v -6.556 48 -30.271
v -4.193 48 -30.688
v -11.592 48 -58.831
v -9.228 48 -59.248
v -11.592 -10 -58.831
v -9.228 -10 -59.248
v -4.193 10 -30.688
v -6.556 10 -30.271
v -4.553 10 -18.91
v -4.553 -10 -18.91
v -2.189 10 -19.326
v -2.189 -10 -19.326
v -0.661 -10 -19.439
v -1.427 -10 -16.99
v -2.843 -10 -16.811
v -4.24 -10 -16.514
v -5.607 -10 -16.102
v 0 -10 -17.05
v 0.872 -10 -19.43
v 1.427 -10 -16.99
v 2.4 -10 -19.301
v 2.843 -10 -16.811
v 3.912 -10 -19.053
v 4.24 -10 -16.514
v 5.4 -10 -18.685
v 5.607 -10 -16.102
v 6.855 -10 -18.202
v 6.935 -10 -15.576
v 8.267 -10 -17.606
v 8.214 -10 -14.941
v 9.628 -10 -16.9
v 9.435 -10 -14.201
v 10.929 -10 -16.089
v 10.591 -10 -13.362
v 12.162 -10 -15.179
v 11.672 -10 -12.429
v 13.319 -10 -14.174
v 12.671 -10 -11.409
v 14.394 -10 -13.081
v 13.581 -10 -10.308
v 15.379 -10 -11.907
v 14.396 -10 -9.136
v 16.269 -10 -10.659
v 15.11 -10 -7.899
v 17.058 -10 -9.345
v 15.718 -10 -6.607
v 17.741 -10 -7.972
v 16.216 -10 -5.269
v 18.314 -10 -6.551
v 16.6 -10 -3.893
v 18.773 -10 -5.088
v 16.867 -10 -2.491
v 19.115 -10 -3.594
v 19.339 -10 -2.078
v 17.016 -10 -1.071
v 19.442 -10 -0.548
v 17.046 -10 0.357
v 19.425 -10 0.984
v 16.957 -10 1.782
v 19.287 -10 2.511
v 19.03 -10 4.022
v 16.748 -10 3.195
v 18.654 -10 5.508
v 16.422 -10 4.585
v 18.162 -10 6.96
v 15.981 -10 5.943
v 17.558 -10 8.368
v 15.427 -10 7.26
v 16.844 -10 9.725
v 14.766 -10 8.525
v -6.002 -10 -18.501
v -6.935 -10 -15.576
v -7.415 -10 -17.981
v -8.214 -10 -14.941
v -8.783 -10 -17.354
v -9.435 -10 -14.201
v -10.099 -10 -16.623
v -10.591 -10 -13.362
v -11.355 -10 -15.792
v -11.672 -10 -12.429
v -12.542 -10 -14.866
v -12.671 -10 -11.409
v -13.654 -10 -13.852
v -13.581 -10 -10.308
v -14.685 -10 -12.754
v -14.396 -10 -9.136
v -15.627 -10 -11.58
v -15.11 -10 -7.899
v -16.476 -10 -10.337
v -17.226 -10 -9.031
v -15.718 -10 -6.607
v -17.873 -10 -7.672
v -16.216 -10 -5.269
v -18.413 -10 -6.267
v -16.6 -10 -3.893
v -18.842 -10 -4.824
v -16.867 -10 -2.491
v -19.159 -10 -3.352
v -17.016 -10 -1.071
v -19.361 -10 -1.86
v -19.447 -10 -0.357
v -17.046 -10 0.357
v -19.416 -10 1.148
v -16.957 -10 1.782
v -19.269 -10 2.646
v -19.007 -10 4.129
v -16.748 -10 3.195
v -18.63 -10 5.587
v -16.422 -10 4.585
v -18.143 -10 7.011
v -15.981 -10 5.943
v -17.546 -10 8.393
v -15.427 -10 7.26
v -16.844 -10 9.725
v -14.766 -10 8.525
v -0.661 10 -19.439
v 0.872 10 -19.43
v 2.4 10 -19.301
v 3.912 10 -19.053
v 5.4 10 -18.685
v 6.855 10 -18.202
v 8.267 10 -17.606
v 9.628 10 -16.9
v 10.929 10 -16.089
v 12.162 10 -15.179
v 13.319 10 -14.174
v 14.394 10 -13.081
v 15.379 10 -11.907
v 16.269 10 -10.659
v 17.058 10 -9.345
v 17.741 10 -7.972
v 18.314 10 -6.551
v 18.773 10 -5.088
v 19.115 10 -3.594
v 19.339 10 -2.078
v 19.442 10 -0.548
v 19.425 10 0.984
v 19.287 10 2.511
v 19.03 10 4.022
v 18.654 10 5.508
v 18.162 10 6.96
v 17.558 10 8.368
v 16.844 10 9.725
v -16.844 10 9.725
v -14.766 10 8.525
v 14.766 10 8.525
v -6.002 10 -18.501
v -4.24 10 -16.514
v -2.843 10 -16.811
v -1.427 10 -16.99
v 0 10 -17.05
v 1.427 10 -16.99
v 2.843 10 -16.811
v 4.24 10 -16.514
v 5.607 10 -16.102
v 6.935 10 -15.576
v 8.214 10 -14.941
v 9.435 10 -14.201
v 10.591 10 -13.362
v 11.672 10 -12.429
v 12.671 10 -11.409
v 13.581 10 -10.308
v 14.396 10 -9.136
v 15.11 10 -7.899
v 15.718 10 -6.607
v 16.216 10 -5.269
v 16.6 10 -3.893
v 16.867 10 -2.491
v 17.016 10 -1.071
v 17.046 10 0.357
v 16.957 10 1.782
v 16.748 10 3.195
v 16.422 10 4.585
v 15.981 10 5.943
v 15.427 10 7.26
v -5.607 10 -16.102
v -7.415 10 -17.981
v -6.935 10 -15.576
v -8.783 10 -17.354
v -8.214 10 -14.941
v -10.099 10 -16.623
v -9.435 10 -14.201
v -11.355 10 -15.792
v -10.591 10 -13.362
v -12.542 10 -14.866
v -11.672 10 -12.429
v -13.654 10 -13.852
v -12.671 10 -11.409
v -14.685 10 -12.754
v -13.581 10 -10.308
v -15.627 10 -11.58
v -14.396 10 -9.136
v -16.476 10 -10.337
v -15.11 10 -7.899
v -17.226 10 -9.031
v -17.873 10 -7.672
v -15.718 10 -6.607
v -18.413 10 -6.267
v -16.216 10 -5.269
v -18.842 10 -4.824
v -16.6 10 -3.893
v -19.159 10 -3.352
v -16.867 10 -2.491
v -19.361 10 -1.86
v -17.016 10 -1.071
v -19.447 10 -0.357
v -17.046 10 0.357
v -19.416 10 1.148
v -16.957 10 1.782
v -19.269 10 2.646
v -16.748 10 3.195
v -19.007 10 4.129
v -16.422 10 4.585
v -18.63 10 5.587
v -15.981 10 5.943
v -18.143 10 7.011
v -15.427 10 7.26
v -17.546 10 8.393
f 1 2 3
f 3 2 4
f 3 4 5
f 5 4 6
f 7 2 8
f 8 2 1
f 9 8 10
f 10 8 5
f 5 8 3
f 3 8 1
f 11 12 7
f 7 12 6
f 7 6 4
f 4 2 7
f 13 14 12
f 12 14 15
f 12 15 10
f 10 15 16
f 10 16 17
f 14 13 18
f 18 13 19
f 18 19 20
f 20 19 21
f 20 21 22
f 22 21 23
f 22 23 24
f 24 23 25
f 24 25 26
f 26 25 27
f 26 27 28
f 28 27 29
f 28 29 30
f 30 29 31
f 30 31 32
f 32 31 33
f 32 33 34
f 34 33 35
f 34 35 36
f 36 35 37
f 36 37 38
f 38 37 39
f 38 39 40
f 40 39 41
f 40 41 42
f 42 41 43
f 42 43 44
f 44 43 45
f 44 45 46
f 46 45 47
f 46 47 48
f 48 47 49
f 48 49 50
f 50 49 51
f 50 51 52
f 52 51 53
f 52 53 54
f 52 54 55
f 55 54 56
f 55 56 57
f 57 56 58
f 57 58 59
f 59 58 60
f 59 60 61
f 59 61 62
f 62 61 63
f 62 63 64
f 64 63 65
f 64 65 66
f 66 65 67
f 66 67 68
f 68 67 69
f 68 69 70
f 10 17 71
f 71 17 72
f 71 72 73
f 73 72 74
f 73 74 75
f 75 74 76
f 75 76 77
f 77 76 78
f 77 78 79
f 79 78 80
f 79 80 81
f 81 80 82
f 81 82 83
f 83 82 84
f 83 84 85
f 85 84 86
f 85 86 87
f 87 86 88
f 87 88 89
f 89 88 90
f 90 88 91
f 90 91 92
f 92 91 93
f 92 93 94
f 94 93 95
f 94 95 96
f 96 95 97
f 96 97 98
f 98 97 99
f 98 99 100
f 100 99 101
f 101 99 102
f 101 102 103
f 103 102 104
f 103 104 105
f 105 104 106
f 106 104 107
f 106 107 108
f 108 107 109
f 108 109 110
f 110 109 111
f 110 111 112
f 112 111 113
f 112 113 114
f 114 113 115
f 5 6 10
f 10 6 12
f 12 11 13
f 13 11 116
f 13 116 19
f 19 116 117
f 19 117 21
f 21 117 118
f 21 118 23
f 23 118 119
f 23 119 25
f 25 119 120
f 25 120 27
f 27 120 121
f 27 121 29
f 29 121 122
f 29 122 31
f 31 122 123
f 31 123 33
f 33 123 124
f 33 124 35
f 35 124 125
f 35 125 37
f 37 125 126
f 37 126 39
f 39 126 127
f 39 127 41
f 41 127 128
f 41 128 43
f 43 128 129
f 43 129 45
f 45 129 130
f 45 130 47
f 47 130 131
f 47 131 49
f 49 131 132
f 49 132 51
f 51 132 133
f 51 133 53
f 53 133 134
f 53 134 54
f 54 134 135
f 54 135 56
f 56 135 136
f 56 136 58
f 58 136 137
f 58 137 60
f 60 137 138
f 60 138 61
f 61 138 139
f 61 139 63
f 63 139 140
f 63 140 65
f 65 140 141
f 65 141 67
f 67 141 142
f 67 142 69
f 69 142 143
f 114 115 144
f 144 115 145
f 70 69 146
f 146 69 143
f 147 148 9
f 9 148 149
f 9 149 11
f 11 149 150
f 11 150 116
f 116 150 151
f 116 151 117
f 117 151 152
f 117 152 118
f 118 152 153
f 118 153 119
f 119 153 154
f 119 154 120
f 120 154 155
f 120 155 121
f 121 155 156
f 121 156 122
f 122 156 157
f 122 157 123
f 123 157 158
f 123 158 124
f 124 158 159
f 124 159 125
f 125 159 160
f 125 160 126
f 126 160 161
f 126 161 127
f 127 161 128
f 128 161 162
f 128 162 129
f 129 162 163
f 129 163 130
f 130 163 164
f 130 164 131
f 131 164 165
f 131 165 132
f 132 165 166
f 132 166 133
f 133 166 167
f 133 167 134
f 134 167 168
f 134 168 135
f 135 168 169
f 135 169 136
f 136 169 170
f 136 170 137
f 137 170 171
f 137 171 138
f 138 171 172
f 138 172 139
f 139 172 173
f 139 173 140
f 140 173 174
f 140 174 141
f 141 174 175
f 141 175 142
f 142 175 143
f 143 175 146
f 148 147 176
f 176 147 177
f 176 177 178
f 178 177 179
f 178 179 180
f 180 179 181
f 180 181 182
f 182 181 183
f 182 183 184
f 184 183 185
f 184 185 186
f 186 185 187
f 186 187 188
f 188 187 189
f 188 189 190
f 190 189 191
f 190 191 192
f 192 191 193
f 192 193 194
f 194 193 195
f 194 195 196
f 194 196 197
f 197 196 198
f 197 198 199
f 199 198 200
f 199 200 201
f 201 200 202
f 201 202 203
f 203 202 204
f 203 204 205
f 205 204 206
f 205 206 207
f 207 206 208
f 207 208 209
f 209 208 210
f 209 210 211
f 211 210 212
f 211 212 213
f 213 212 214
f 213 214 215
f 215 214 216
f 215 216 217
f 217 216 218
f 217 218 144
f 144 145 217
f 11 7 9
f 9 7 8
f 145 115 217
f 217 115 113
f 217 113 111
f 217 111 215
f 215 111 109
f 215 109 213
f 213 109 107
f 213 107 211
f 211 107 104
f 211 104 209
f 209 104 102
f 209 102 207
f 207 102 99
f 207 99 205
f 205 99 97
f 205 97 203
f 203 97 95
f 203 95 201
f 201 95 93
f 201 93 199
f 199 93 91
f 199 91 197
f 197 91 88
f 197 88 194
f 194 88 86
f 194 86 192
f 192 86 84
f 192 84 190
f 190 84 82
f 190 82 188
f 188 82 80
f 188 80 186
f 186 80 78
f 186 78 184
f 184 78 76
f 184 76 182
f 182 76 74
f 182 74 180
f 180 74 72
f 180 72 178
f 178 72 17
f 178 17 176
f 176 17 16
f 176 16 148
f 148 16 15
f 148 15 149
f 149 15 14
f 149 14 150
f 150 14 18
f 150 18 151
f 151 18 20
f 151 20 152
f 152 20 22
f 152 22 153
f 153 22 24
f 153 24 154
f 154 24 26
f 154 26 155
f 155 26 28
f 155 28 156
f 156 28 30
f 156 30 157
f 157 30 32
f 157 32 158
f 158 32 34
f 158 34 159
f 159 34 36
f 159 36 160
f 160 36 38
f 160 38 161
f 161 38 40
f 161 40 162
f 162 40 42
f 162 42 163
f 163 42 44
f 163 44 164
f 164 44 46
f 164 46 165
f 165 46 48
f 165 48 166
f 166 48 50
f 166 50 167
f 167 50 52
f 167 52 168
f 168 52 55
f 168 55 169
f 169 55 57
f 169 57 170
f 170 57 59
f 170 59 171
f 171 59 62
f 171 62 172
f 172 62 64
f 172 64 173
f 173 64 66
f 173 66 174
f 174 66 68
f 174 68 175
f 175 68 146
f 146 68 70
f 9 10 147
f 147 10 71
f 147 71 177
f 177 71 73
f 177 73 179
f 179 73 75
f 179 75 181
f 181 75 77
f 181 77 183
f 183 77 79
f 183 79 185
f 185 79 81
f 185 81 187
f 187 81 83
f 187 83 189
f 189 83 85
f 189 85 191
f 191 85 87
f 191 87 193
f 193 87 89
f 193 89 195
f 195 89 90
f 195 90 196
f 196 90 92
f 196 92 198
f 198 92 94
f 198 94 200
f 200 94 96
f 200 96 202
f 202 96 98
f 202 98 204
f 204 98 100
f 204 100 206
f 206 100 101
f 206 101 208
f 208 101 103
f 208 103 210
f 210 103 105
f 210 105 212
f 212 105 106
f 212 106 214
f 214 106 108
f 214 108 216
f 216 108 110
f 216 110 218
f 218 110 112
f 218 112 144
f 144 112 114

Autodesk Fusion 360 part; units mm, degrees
sketch "Ring" plane through (0, 0, 0) normal (0, 1, 0) x (1, 0, 0)
  circle A0 centre (0, 0) radius 17.05
  circle A1 centre (0, 0) radius 19.45
  dimension "d234" = 34.1
  dimension "d235" = 38.9
extrude "Ring (1)" add sketch "Ring" along normal mid plane 20
sketch "Mouth" plane through (0, 0, 0) normal (0, 1, 0) x (1, 0, 0)
  line L0 (0, 0) -> (42.3486, -24.45)
  line L1 (42.3486, -24.45) -> (0, -48.9)
  line L2 (0, -48.9) -> (-42.3486, -24.45)
  line L3 (-42.3486, -24.45) -> (0, 0)
  line L4 (0, 0) -> (0, -48.9) construction
  dimension "d238" = 48.9
  dimension "d239" = 48.9
  dimension "d240" = 48.9
  dimension "d241" = 60
  dimension "d242" = 60
extrude "Mouth (1)" cut sketch "Mouth" along normal mid plane 30
ref_plane "WorkPlane3" through (0, 12.125, 0) normal (-0.1736, 0, -0.9848) x (0, 1, 0)
sketch "Stem section" plane through (0, 0, 0) normal (-0.1736, 0, -0.9848) x (0, 1, 0)
  line L0 (1.75, 0) -> (22.5, 0) construction
  line L1 (-10, 1.2) -> (10, 1.2)
  line L2 (10, 1.2) -> (10, -1.2)
  line L3 (10, -1.2) -> (-10, -1.2)
  line L4 (-10, -1.2) -> (-10, 1.2)
  line L5 (0, 0) -> (0, 4.8) construction
  dimension "d247" = 2.4
  dimension "d248" = 4.8
  dimension "d249" = 20
extrude "Stem" add sketch "Stem section" along normal blind 12.7 from surface at 18.25
sketch "Face section" plane through (0, 0, 0) normal (-0.1736, 0, -0.9848) x (0, 1, 0)
  line L0 (1.75, 0) -> (22.5, 0) construction
  line L1 (-10, 1.2) -> (48, 1.2)
  line L2 (48, 1.2) -> (48, -1.2)
  line L3 (48, -1.2) -> (-10, -1.2)
  line L4 (-10, -1.2) -> (-10, 1.2)
  line L5 (-10, -1.2) -> (-10, 1.2) construction
  dimension "d253" = 2.4
  dimension "d254" = 58
extrude "Label face" add sketch "Face section" along normal blind 29 from surface at 30.95
equation "clipWidth = 20.0 mm"
equation "faceWidth = 58.0 mm"
equation "rodOuterDiameter = 33.4 mm"
equation "clipClearance = 0.7 mm"
equation "clipWall = 2.4 mm"
equation "mouthHalfAngleDeg = 60.0 deg"
equation "paddleThickness = 2.4 mm"
equation "stemEndRadius = ( rodOuterDiameter + clipClearance + 2 * clipWall ) / 2 + stemLength"
equation "faceEndRadius = stemEndRadius + faceHeight"
equation "paddleAngleDeg = 100.0 deg"
equation "stemStartRadius = ( rodOuterDiameter + clipClearance ) / 2 + clipWall / 2"
equation "stemLength = 11.5 mm"
equation "faceHeight = 29.0 mm"
equation "d234 = rodOuterDiameter + clipClearance"
equation "d235 = rodOuterDiameter + clipClearance + 2 * clipWall"
equation "d236 = clipWidth"
equation "d238 = Linear Dimension-2"
equation "d239 = Linear Dimension-3"
equation "d240 = Linear Dimension-4"
equation "d241 = mouthHalfAngleDeg"
equation "d242 = mouthHalfAngleDeg"
equation "d243 = clipWidth + 10 mm"
equation "d245 = paddleAngleDeg"
equation "d247 = paddleThickness"
equation "d248 = paddleThickness * 2"
equation "d249 = clipWidth"
equation "d250 = stemStartRadius"
equation "d251 = stemEndRadius - stemStartRadius"
equation "d253 = paddleThickness"
equation "d254 = faceWidth"
equation "d255 = stemEndRadius"
equation "d256 = faceEndRadius - stemEndRadius"
